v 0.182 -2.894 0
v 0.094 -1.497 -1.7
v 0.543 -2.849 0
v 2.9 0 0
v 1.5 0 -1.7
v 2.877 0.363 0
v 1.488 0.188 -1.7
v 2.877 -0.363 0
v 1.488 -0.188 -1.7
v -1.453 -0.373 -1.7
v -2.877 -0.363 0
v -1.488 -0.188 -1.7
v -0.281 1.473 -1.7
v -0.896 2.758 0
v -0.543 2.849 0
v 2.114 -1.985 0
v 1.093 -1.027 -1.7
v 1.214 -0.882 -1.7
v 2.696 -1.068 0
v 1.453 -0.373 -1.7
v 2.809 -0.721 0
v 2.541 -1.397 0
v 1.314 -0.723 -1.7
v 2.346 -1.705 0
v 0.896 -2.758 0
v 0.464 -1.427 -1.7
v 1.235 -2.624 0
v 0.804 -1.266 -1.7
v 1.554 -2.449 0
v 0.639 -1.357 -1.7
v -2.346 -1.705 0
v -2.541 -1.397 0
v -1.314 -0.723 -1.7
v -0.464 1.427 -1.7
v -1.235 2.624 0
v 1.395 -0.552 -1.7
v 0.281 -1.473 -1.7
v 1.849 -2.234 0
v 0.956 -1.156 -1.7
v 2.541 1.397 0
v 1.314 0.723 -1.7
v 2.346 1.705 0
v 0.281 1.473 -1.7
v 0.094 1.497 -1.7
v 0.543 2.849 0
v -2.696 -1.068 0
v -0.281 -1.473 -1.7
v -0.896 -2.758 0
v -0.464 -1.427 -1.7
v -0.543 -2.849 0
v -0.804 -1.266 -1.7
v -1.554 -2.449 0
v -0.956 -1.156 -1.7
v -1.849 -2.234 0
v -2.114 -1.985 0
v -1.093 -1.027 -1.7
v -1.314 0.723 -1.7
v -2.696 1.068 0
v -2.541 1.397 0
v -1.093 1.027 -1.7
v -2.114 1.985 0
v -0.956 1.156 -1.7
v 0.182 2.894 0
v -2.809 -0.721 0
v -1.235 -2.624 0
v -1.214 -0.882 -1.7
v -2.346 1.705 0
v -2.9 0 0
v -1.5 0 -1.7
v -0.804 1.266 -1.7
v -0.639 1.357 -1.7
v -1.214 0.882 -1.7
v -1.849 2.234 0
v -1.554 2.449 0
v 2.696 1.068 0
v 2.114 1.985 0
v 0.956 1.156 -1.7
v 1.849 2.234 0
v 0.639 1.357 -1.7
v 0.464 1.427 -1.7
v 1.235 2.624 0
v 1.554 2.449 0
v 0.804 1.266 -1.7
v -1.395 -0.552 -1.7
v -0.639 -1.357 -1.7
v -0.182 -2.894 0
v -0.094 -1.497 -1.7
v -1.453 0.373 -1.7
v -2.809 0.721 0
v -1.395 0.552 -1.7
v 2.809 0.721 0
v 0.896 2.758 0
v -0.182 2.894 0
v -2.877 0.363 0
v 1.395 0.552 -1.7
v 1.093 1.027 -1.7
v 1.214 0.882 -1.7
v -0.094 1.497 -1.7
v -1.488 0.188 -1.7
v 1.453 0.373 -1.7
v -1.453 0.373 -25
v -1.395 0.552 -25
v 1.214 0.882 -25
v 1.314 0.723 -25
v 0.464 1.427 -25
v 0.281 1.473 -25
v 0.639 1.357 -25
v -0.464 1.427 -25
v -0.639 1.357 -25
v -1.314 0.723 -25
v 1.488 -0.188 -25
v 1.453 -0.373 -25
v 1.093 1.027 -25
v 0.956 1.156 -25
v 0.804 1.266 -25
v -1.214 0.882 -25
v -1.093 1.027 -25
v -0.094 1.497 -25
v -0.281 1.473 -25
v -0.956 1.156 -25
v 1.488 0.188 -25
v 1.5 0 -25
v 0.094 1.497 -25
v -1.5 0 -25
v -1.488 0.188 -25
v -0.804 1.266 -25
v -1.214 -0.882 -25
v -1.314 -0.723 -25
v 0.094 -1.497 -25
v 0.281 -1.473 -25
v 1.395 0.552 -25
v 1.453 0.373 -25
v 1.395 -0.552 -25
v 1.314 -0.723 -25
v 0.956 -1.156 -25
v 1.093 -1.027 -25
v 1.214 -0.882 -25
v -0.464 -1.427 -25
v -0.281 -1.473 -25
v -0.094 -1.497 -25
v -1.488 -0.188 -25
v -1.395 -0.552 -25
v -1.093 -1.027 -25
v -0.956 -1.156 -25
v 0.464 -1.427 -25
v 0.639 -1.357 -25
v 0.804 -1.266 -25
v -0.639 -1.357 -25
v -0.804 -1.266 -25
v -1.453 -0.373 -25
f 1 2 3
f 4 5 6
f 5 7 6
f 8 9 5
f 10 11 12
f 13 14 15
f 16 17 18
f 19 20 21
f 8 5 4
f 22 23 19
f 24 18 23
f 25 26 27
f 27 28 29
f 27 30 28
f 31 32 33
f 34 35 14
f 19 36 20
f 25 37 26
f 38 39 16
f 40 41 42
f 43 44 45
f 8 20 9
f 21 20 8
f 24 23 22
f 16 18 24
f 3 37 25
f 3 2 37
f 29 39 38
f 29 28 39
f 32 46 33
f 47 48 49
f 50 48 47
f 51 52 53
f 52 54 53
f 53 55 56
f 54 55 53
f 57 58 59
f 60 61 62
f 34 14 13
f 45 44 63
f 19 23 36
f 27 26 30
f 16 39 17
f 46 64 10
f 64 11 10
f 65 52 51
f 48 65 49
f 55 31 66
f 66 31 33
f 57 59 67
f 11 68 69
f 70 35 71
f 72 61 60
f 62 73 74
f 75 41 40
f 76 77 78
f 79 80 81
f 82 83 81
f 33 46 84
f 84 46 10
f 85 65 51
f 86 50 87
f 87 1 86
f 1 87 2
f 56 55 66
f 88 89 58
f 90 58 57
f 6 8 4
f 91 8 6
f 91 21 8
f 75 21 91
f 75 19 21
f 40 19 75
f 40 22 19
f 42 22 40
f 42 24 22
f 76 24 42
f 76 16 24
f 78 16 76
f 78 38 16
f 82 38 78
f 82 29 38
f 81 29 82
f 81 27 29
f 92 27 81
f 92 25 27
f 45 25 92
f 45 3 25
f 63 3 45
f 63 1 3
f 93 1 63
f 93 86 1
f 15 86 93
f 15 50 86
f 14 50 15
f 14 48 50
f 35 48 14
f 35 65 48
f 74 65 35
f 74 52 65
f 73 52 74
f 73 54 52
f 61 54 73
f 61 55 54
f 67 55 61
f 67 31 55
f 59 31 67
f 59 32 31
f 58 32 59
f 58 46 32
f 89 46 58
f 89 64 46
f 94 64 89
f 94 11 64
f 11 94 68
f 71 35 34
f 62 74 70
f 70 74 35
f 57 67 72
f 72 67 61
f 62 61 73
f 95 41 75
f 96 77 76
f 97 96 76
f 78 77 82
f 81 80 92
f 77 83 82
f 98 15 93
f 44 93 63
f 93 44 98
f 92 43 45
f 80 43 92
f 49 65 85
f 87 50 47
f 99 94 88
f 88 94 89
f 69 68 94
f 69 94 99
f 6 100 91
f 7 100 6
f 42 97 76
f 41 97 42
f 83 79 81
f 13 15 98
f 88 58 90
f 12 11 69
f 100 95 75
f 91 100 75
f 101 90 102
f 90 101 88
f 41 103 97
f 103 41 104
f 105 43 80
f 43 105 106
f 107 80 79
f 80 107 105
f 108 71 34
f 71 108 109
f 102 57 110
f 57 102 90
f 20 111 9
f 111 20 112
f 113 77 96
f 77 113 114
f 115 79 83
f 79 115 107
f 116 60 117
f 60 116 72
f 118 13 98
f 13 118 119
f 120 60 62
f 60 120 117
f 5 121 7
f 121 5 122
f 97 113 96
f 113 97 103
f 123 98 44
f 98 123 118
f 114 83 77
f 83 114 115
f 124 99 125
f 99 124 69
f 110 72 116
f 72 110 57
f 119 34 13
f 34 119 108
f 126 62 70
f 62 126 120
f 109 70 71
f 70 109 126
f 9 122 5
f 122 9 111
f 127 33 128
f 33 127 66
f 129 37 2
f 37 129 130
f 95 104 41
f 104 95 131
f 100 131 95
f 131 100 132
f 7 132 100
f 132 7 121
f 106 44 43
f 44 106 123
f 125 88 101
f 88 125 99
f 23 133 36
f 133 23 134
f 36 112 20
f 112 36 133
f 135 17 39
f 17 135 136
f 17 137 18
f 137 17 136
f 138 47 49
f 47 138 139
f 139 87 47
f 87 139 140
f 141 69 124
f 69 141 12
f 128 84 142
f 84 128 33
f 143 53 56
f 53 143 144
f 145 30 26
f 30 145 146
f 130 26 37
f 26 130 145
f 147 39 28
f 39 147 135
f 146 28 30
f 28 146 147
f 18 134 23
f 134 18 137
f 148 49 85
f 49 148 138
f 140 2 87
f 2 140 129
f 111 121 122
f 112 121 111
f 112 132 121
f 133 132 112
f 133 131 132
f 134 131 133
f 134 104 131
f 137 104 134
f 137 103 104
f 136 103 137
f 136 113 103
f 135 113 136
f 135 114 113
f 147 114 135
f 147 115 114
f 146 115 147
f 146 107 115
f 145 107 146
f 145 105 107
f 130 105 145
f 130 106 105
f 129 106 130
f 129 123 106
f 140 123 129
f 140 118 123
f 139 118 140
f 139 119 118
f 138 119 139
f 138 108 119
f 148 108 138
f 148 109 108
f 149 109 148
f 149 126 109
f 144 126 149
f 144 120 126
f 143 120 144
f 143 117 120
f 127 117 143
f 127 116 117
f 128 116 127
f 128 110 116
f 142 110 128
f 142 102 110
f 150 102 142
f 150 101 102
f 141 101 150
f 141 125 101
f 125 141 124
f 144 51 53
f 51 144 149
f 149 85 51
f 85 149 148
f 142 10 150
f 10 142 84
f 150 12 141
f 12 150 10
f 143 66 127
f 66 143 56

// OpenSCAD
// Generated by SolidPython 1.1.3 on 2023-03-13 21:06:12
$fn = 50;


difference() {
	union() {
		translate(v = [0, 0, -1.7000000000]) {
			rotate(a = [0, 0, 0]) {
				cylinder(h = 1.7000000000, r1 = 1.5000000000, r2 = 2.9000000000);
			}
		}
		translate(v = [0, 0, -25]) {
			rotate(a = [0, 0, 0]) {
				cylinder(h = 25, r = 1.5000000000);
			}
		}
	}
	union();
}
/***********************************************
*********      SolidPython code:      **********
************************************************
 
from solid import *
import os
import subprocess

import oomB

import opsc_library_gen

mode = "laser"
#mode = "3d_print"

defined_objects = {}

radius_dict = {}
countersunk_dict = {}


def set_mode(m):
    global mode
    mode = m
    radius_dict['M6'] = 6.5/2
    radius_dict['M3'] = 3.3/2
    if mode == "laser":
        radius_dict['M6'] = 6/2
        radius_dict['M3'] = 3/2

    countersunk_dict['M3'] = {}
    countersunk_dict['M3']['little_rad'] = radius_dict['M3']
    countersunk_dict['M3']['big_rad'] = (5.5+0.6)/2
    if mode == "laser":
        countersunk_dict['M3']['big_rad'] = (4.75+0.6)/2
        countersunk_dict['M3']['little_rad'] = (4.75+0.6)/2

    countersunk_dict['M3']['height'] = 1.7


def opsc_make_object(filename, objects, save_type="none",resolution=50, layers = 1, tilediff = 200, mode="laser", overwrite=True):
    if overwrite or not os.path.exists(filename):
        set_mode(mode)
        save_type = save_type.lower()
        os.makedirs(os.path.dirname(filename), exist_ok=True)
        final_object = opsc_get_object(objects, mode = mode)
        # Save the final object to the specified filename    
        scad_render_to_file(final_object, filename, file_header='$fn = %s;' % resolution, include_orig_code=True)
        if save_type == "all":
            saveToAll(filename)
        elif save_type == "dxf":
            saveToDxf(filename)
        if mode == "laser":
            filename_laser = filename.replace(".scad","-flat.scad")
            scad_render_to_file(getLaser(final_object, layers=layers, tilediff=tilediff), filename_laser, file_header='$fn = %s;' % resolution, include_orig_code=True)
            if save_type == "all":
                saveToAll(filename_laser)
            elif save_type == "dxf":
                saveToDxf(filename_laser)


def opsc_get_object(objects, mode = "laser"):
    # Create the solidpython objects only include the positive objects and if they don't have inclusion or their inclusion is either all or mode
    # Initialize an empty list to store the results
    positive_objects = []

    # Iterate over the "objects" list
    for obj in objects:
        # Check if the current object has a "type" key with a value of "positive"
        if obj['type'] == 'positive':
            # Check if the current object has an "inclusion" key and its value matches "mode",
            # or if the current object does not have an "inclusion" key at all
            if not 'inclusion' in obj or obj['inclusion'] == "all" or obj['inclusion'] == mode:
                # Call the "get_opsc_item" function with the current object as an argument
                opsc_item = get_opsc_item(obj)
                # Add the result to the "positive_objects" list
                positive_objects.append(opsc_item)
# Initialize an empty list to store the results
    negative_objects = []

    # Iterate over the "objects" list
    for obj in objects:
        # Check if the current object has a "type" key with a value of "negative"
        if obj['type'] == 'negative':
            # Check if the current object has an "inclusion" key and its value matches "mode",
            # or if the current object does not have an "inclusion" key at all
            if not 'inclusion' in obj or obj['inclusion'] == "all" or obj['inclusion'] == mode:
                # Call the "get_opsc_item" function with the current object as an argument
                opsc_item = get_opsc_item(obj)
                # Add the result to the "negative_objects" list
                negative_objects.append(opsc_item)
    
    #positive_objects = [get_opsc_item(obj) for obj in objects if obj['type'] == 'positive']
    #negative_objects = [get_opsc_item(obj) for obj in objects if obj['type'] == 'negative']
    # Union the positive objects
    positive_object = union()(*positive_objects)
    # Union the negative objects
    negative_object = union()(*negative_objects)
    # Create the final object by subtracting the negative objects from the positive objects
    return difference()(positive_object, negative_object)

def get_opsc_item(params):
    # A dictionary to map radius string values to numerical values
    #radius_dict = {'small': 5, 'medium': 10, 'large': 15}
    # An array of function names for basic shapes
    basic_shapes = ['cube', 'sphere', 'cylinder']
    
    # An array of function names for other shapes
    other_shapes = ['hole', 'slot', 'rounded_rectangle', 'countersunk', 'polyg']
    


    # Convert radius to r if present, and remove radius from the params dictionary
    if 'radius' in params:
        if isinstance(params['radius'], str):
            # Use the radius_dict to map the radius string value to a numerical value
            params['r'] = radius_dict[params['radius']]
        else:
            params['r'] = params['radius']
        del params['radius']
    

    # Check if the object type is a basic shape
    if params['shape'] in basic_shapes:
        # Remove shape and unexpected dictionary values
        allowed_keys = {'size', 'r', 'r1', 'r2', 'd', 'h', 'rw', 'rh', 'dw', 'dh'}
        shape_params = {k: v for k, v in params.items() if k in allowed_keys}

        #params['m'] = "#"
        ###split for adding modifier
        try:
            m = params['m']
            func = globals()[params['shape']]
            return_value = get_opsc_transform(params,func(**shape_params))
            return_value = (return_value).set_modifier(m)
            return return_value
        except KeyError as e:
            return get_opsc_transform(params,globals()[params['shape']](**shape_params))
        
    elif params['shape'] == 'polygon':
        # Remove shape and unexpected dictionary values
        h  = params['height']
        allowed_keys = {'points'}
        shape_params = {k: v for k, v in params.items() if k in allowed_keys}

        # Call the corresponding function for the shape parameter, using ** notation to pass the shape_params dictionary as keyword arguments
        params["rot"] = [0,0,0]        
        try:
            m = params['m']
            func = globals()[params['shape']]
            return_value = get_opsc_transform(params,linear_extrude(h)(globals()[params['shape']](**shape_params)))
            return_value = (return_value).set_modifier(m)
            return return_value
        except KeyError as e:
            return_value = get_opsc_transform(params,linear_extrude(h)(globals()[params['shape']](**shape_params)))
            return_value = (return_value)
            return return_value


    # If the object type is not a basic shape, check if it's a defined object or one of the other shapes
    elif params['shape'] in other_shapes:
        # Call the corresponding function for the shape parameter, passing the params dictionary as an argument
        p2 = copy.deepcopy(params)
        p2["pos"] = [0,0,0]
        return get_opsc_transform(params,globals()[params['shape']](p2))
    
    # If the object is not a basic shape or a defined object, try to import it from a .scad file
    else:
        obj = defined_objects[params['shape']]
        return get_opsc_transform(params,obj)

def get_opsc_transform(params, solid_obj):
    # Rotate the object based on the 'rot' field in the params dictionary, or the 'rotX', 'rotY', and 'rotZ' fields if 'rot' is not present
    rot = params.get('rot', [])
    if rot:
        rotX, rotY, rotZ = rot
    else:
        rotX = params.get('rotX', 0)
        rotY = params.get('rotY', 0)
        rotZ = params.get('rotZ', 0)
    solid_obj = rotate([rotX, rotY, rotZ])(solid_obj)

    # Translate the object based on the 'pos' field in the params dictionary, or the 'x', 'y', and 'z' fields if 'pos' is not present
    pos = params.get('pos', [])
    if pos:
        x, y, z = pos
    else:
        x = params.get('x', 0)
        y = params.get('y', 0)
        z = params.get('z', 0)
    solid_obj = translate([x, y, z])(solid_obj)
    return solid_obj


import random

def opsc_easy_array(type, shape, repeats, pos_start, shift_arr, **kwargs):
    for i in range(0,3):
        repeats.append(1)
        pos_start.append(0)
        shift_arr.append(0)
    return_objects = []

    for x in range(0,repeats[0]):
        for y in range(0,repeats[1]):
            for z in range(0,repeats[2]):
                return_objects.append(opsc_easy(type, shape, pos=[pos_start[0]+x*shift_arr[0],pos_start[1]+y*shift_arr[1],pos_start[2]+z*shift_arr[2]], **kwargs))
    return return_objects                



def opsc_easy(type, shape, **kwargs):
    obj = {
        'type': type,
        'shape': shape
    }
    for param in ['size', 'r', 'r1', 'r2', 'd', 'h', 'rw', 'rh', 'dw', 'dh', 'pos', 'x', 'y', 'z', 'rot', 'rotX', 'rotY', 'rotZ', "w", "inclusion", 'sides', 'height', "m"]:
        if param in kwargs:
            obj[param] = kwargs[param]
    return obj

def hole(params):
    p2 = copy.deepcopy(params)  
    # Check if the radius is a string and replace it with the corresponding value from the dictionary
    if isinstance(p2['r'], str):
        p2['r'] = radius_dict[p2['r']]
    
    # Set the height to 100 if not specified
    if 'h' not in p2:
        p2['h'] = 100
        p2["pos"] = [0,0,-50]
    p2["center"] = True
    # Create the cylinder object
    p2["shape"] = "cylinder"
    p2["type"] = "positive"

    return get_opsc_item(p2)

import copy

def countersunk(params):
    p2 = copy.deepcopy(params)
    counter_rad = p2['r']
    p2['r'] = radius_dict[p2['r']]
    hp = copy.deepcopy(p2)
    hp["type"] = "positive"
    hp["shape"] = "hole"
    del hp["rot"]
    hol = get_opsc_item(hp)
    
    cp = copy.deepcopy(p2)
    cp["h"] = countersunk_dict[counter_rad]["height"]
    cp["r2"] = countersunk_dict[counter_rad]["little_rad"]
    cp["r1"] = countersunk_dict[counter_rad]["big_rad"]
    del cp["r"]
    del cp["rot"]
    cp["type"] = "positive"
    cp["shape"] = "cylinder"
    cp["pos"] = [0,0,0]

    top = get_opsc_item(cp)
    return union()(hol,top)



def slot(params):  
    p2 = copy.deepcopy(params) 
    if isinstance(p2['r'], str):
        p2['r'] = radius_dict[p2['r']]
    p2["type"] = "positive"
    p2["shape"] = "hole"
    del p2["rot"]
    p2["pos"] = [0,0,0]
    left = copy.deepcopy(p2)
    right = copy.deepcopy(p2)
    left["pos"][0] = p2["w"] / 2 - p2["r"] 
    
    right["pos"][0] = -p2["w"] / 2 + p2["r"] 
    pass
    leftObj = get_opsc_item(left)
    rightObj = get_opsc_item(right)
    return hull()(leftObj, rightObj)

def rounded_rectangle(params):   
    p2 = copy.deepcopy(params) 
    p2["h"] = p2["size"][2]
    p2["pos"] = p2.get("pos", [0, 0, 0]) 
    p2["type"] = "positive"
    p2["shape"] = "hole"
    p2["pos"] = [0,0,0]
    
    if 'rot' in p2:
        del p2["rot"]   
    if 'r' not in p2:
        p2["r"] = 5 
    tl = copy.deepcopy(p2)
    tr = copy.deepcopy(p2)
    bl = copy.deepcopy(p2)
    br = copy.deepcopy(p2)
    tl["pos"][0] = -(p2["size"][0] - p2["r"]*2)/2
    tl["pos"][1] = (p2["size"][1] - p2["r"]*2)/2
    tr["pos"][0] = (p2["size"][0] - p2["r"]*2)/2
    tr["pos"][1] = (p2["size"][1] - p2["r"]*2)/2
    bl["pos"][0] = -(p2["size"][0] - p2["r"]*2)/2
    bl["pos"][1] = -(p2["size"][1] - p2["r"]*2)/2
    br["pos"][0] = (p2["size"][0] - p2["r"]*2)/2
    br["pos"][1] = -(p2["size"][1] - p2["r"]*2)/2
    del tl["size"]
    del tr["size"]
    del bl["size"]
    del br["size"]
    tlo = get_opsc_item(tl)
    tro = get_opsc_item(tr)
    blo = get_opsc_item(bl)
    bro = get_opsc_item(br)    
    return hull()(tlo, tro, blo, bro)



def polyg(params):
    p2 = copy.deepcopy(params) 
    p2["type"] = "positive"
    p2["shape"] = "polygon"
    p2["pos"] = [0,0,0]
    sides = p2["sides"]
    radius = p2["r"]    
    angles = [i * 360 / sides for i in range(sides)]
    points = regular_polygon(sides, radius)
    
    p2["points"] = points
    return get_opsc_item(p2)

import math

def regular_polygon(num_sides, radius):
    # Calculate the angle between each side
    angle = 2 * math.pi / num_sides

    # Calculate the points of the polygon
    points = []
    for i in range(num_sides):
        x = radius * math.cos(i * angle)
        y = radius * math.sin(i * angle)
        points.append((x, y))
    return points

def import_scad_object(filename):
    # Import the .scad file and convert it to a solidpython object
    #filename = "parts"
    obj = import_scad(filename)
    return obj.main()



import os
import solid as solidpython

# A dictionary to store the defined objects


def load_scad_objects():
    opsc_library_gen.gen_library(defined_objects)

import random

def test(num_objects):
    objects = []
    for i in range(num_objects):
        # Choose a random shape
        #shape = random.choice(['cube', 'sphere', 'cylinder', 'hole', 'slot', "rounded_rectangle"])
        shape = random.choice(["rounded_rectangle"])

        # Choose a random type
        type = random.choice(['positive', 'negative'])
        
        # Create an empty object dictionary
        obj = {'shape': shape, 'type': type}
        
        # Set shape-specific parameters
        if obj['shape'] in ['cube']:
            obj['size'] =  [random.uniform(5, 15), random.uniform(5, 15), random.uniform(5, 15)]
        if obj['shape'] in ['rounded_rectangle']:
            obj['size'] =  [random.uniform(5, 15), random.uniform(5, 15), random.uniform(5, 15)]
            obj['r'] = random.uniform(0.5, 5)
        elif obj['shape'] == 'sphere':
            obj['r'] = random.uniform(5, 15)
        elif obj['shape'] in ['cylinder', 'hole']:
            obj['r'] = random.uniform(0.5, 5)
            obj['h'] = random.uniform(5, 15)
        elif obj['shape'] == 'slot':
            obj['r'] = random.uniform(0.5, 5)
            obj['h'] = random.uniform(5, 15)
            obj['w'] = random.uniform(5, 15)
        
        # Set a random position and rotation
        obj['pos'] = [random.uniform(-20, 20), random.uniform(-20, 20), random.uniform(-20, 20)]
        obj['rot'] = [random.uniform(-180, 180), random.uniform(-180, 180), random.uniform(-180, 180)]
        
        # Add the object to the list
        objects.append(obj)
    return objects

####### old file saving
def saveToAll(fileIn):
    saveToStl(fileIn)
    saveToDxf(fileIn)
    saveToPng(fileIn)
    saveToSvg(fileIn)

def saveToDxf(fileIn, fileOut="", copy_to_laser=True):
    if fileOut == "":
        fileOut = fileIn.replace(".scad",".dxf")
    saveToFile(fileIn, fileOut)


    
def saveToPng(fileIn, fileOut="",extra="--render"):
    if fileOut == "":
        fileOut = fileIn.replace(".scad",".png")
    saveToFile(fileIn, fileOut)

def saveToStl(fileIn, fileOut=""):
    if fileOut == "":
        fileOut = fileIn.replace(".scad",".stl")
    saveToFile(fileIn, fileOut)
    
def saveToSvg(fileIn, fileOut=""):
    if fileOut == "":
        fileOut = fileIn.replace(".scad",".svg")
    saveToFile(fileIn, fileOut)

def saveToFile(fileIn, fileOut,extra=""):
    #extra = extra + " --colorscheme Tomorrow"

    launchStr = 'openscad -o "' + fileOut + '"' + extra + ' "' + fileIn + '"'
    if ".png" in fileOut:
        launchStr = launchStr + " --render"
    print("            saveToFile launch string: " + launchStr)
    subprocess.run(launchStr)
    x=0

def getLaser(final_object,start=1.5,layers=1,thickness=3,tilediff=200):
        rv= []

        for x in range(layers):
            rv.append(translate([0,x*tilediff,0])(
                    projection()(
                        intersection()(translate([-500,-500,start+x*thickness])(cube(size=[1000,1000,0.1])),
                            final_object
                        )
                    )
            )
            )
            
        return union()(rv)

set_mode("laser")
load_scad_objects() 
 
************************************************/
